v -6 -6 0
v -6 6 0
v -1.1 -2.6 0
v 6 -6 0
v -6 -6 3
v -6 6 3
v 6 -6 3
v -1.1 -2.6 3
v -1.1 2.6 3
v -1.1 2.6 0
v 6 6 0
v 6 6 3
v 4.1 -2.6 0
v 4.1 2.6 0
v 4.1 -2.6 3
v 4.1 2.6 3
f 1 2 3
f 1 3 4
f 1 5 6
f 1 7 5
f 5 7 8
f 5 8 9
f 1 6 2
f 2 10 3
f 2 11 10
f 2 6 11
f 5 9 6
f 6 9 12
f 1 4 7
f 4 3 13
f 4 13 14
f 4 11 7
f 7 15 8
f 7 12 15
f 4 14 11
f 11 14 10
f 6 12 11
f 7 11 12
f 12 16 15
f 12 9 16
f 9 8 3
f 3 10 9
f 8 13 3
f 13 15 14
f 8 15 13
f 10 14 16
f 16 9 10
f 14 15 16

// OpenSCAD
$fn = 50;

difference() {
	union() {
		translate(v = [0, 0, 0]) {
			rotate(a = [0, 0, 0]) {
				difference() {
					union() {
						translate(v = [-6.0, -6.0, 0]) {
							cube(size = [12.0, 12.0, 3.0]);
						}
					}
					union() {
						translate(v = [-1.1, -2.6, -0.1]) {
							cube(size = [5.2, 5.2, 3.2]);
						}
					}
				}
			}
		}
	}
	union();
}
